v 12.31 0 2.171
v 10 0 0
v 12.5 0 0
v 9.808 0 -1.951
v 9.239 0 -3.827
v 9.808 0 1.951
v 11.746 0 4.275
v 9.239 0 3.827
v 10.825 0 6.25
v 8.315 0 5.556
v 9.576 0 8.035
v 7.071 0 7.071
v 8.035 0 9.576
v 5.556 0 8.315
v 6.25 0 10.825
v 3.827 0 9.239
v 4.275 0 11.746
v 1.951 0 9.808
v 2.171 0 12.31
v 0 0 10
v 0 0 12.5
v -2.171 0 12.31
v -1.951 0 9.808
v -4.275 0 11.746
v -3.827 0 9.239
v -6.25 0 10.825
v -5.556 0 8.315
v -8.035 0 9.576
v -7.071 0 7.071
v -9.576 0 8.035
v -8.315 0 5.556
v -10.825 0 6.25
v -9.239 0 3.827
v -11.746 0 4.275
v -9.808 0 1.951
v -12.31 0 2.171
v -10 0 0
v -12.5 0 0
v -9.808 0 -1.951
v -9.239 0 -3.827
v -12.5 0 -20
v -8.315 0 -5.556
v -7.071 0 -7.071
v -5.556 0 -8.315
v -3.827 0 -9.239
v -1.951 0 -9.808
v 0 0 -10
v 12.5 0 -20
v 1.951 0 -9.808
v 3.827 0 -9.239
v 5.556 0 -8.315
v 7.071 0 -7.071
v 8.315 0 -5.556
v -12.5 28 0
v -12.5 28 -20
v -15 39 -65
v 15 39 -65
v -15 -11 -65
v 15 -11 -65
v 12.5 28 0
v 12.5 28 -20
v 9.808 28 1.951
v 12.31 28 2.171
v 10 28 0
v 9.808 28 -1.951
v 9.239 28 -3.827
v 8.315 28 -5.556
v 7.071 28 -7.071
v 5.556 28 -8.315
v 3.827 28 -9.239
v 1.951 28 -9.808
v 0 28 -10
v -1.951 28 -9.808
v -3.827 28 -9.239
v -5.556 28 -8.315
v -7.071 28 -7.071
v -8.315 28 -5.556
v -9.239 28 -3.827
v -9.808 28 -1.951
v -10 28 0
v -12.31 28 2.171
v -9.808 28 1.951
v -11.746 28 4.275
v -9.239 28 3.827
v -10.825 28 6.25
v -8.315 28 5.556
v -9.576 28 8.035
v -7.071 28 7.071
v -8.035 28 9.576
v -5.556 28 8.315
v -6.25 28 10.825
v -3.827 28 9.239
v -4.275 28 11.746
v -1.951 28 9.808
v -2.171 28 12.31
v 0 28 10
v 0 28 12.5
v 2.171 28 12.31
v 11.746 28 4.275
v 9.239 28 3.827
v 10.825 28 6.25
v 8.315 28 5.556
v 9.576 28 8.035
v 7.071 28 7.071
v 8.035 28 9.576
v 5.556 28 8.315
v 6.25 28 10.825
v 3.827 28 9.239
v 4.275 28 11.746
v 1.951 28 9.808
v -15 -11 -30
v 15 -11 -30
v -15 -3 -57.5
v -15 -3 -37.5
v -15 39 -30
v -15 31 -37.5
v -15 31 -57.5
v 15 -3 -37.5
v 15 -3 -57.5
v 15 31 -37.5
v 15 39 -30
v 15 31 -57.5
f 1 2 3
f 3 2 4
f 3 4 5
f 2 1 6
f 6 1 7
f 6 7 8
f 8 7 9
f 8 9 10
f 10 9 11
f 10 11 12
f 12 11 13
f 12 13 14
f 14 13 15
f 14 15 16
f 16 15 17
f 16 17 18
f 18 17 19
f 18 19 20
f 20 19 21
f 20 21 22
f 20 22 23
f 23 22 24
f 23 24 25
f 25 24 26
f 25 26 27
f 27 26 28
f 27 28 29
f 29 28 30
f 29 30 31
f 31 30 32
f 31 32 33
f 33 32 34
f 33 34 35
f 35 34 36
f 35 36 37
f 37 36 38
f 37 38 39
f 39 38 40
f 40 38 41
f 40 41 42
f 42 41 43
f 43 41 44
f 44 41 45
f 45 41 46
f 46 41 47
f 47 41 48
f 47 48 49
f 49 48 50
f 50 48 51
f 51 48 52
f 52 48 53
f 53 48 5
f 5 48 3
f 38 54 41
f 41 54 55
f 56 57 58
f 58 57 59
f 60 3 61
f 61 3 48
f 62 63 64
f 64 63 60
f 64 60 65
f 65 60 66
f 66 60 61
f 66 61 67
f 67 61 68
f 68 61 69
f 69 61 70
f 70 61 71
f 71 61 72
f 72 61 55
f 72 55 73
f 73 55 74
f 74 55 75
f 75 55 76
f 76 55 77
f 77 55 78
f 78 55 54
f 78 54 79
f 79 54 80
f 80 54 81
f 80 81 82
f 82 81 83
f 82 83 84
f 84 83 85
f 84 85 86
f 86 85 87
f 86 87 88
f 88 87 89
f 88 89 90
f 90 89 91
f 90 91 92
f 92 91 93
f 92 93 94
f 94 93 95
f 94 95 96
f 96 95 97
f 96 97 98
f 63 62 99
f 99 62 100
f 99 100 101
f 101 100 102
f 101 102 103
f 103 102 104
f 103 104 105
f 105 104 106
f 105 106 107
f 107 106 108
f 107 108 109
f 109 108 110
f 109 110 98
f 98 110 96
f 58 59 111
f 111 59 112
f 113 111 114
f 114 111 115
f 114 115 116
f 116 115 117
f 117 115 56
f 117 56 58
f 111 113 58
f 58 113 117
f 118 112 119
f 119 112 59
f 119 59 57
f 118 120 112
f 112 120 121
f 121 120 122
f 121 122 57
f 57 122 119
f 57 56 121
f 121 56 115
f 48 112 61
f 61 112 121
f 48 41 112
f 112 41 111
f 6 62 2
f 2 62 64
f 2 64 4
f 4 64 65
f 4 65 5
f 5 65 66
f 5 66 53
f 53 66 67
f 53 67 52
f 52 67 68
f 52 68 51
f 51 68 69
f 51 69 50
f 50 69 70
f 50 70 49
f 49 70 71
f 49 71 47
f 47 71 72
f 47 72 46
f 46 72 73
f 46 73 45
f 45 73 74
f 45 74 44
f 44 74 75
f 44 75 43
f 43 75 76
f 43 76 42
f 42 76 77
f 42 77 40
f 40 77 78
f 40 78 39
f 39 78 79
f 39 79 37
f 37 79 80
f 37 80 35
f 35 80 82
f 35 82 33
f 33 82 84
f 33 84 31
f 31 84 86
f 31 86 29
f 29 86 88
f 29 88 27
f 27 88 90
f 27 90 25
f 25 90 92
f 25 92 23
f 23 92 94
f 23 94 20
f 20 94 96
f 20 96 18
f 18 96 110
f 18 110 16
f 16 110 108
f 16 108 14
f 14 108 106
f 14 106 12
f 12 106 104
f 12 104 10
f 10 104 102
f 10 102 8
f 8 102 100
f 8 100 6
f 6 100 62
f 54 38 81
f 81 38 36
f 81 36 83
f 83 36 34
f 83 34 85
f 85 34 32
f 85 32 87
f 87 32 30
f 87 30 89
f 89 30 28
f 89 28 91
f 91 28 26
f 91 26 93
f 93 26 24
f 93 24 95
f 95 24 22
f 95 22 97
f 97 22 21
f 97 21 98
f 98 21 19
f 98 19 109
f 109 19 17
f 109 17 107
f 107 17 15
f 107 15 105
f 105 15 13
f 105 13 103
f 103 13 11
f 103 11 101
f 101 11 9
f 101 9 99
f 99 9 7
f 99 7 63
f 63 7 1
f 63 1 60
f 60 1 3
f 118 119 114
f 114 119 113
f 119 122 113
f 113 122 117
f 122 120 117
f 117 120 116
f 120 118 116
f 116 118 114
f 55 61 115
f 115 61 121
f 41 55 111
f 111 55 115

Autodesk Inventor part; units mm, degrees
ref_plane "YZ Plane" through (0, 0, 0) normal (1, 0, 0) x (0, 1, 0)
ref_plane "XZ Plane" through (0, 0, 0) normal (0, 1, 0) x (-1, 0, 0)
sketch "Sketch1" plane through (0, 0, 0) normal (0, 1, 0) x (-1, 0, 0)
  circle A0 centre (0, 0) radius 10
  circle A1 centre (0, 0) radius 12.5
  dimension "d0" = 20
  dimension "d1" = 25
extrude "Extrusion1" add sketch "Sketch1" along normal blind 28
sketch "Sketch2" plane through (0, 0, 0) normal (0, 0, 1) x (1, 0, 0)
  line L0 (12.5, 0) -> (-12.5, 0) projected
  line L1 (12.5, 28) -> (-12.5, 28) projected
  line L2 (-12.5, 0) -> (12.5, 0)
  line L3 (12.5, 0) -> (12.5, 28)
  line L4 (12.5, 28) -> (-12.5, 28)
  line L5 (-12.5, 28) -> (-12.5, 0)
  point P0 (0, 0)
extrude "Extrusion2" add sketch "Sketch2" against normal blind 20
sketch "Sketch3" plane through (0, 28, 0) normal (0, 1, 0) x (1, 0, 0)
  circle A0 centre (0, 0) radius 10
extrude "Extrusion3" cut sketch "Sketch3" against normal blind 50
ref_plane "Work Plane1" through (0, 0, -30) normal (0, 0, -1) x (-1, 0, 0)
sketch "Sketch4" plane through (0, 0, -30) normal (0, 0, -1) x (-1, 0, 0)
  line L0 (0, 0) -> (0, 28)
  line L1 (12.5, 28) -> (-12.5, 28) projected
  line L2 (-15, 30) -> (15, 30)
  line L3 (15, 30) -> (15, -2)
  line L4 (15, -2) -> (-15, -2)
  line L5 (-15, -2) -> (-15, 30)
  line L6 (-15, 30) -> (15, -2) construction
  line L7 (15, 30) -> (-15, -2) construction
  point P0 (0, 14)
  dimension "d9" = 30
  dimension "d10" = 32
extrude "Extrusion4" add sketch "Sketch4" along normal blind 15
sketch "Sketch5" plane through (0, 0, -45) normal (0, 0, -1) x (-1, 0, 0)
  line L0 (15, 30) -> (-15, 30) projected
  line L1 (0, 30) -> (0, -2)
  line L2 (-15, -2) -> (15, -2) projected
  line L3 (-15, 39) -> (15, 39)
  line L4 (15, 39) -> (15, -11)
  line L5 (15, -11) -> (-15, -11)
  line L6 (-15, -11) -> (-15, 39)
  line L7 (-15, 39) -> (15, -11) construction
  line L8 (15, 39) -> (-15, -11) construction
  point P0 (0, 0)
  point P1 (0, 14)
  dimension "d17" = 30
  dimension "d18" = 50
extrude "Extrusion5" add sketch "Sketch5" along normal blind 20 and the other way blind 15
sketch "Sketch7" plane through (15, -11, -30) normal (1, 0, 0) x (0, 0, -1)
  line L0 (0, 0) -> (35, 0) projected
  line L1 (17.5, 0) -> (17.5, 50)
  line L2 (35, 50) -> (0, 50) projected
  line L3 (35, 0) -> (35, 50) projected
  line L4 (35, 25) -> (0, 25)
  line L5 (0, 0) -> (0, 50) projected
  line L6 (7.5, 42) -> (27.5, 42)
  line L7 (27.5, 42) -> (27.5, 8)
  line L8 (27.5, 8) -> (7.5, 8)
  line L9 (7.5, 8) -> (7.5, 42)
  line L10 (7.5, 42) -> (27.5, 8) construction
  line L11 (27.5, 42) -> (7.5, 8) construction
  line L12 (27.5, 42) -> (7.5, 42)
  line L13 (7.5, 42) -> (7.5, 8)
  line L14 (7.5, 8) -> (27.5, 8)
  line L15 (27.5, 8) -> (27.5, 42)
  point P0 (-30, 11)
  point P1 (17.5, 25)
  dimension "d23" = 20
  dimension "d24" = 34
extrude "Extrusion6" cut sketch "Sketch7" against normal blind 30 contours L8 L9 L4 L1 | L1 L4 L7 L8 | L9 L6 L1 L4 | L1 L6 L7 L4
loft "Loft2" add section 1 edges at (0, 28, -20) (12.5, 14, -20) (0, 0, -20) (-12.5, 14, -20) section 2 edges at (15, 14, -30) (0, 39, -30) (-15, 14, -30) (0, -11, -30)
equation "\"BendRadius\" = Thickness"
equation "\"BendReliefWidth\" = Thickness"
equation "\"BendReliefDepth\" = 0.5 * Thickness"
equation "\"CornerReliefSize\" = 4 * Thickness"
equation "\"MinimumRemnant\" = 2 * Thickness"
equation "\"TransitionRadius\" = BendRadius"
equation "\"JacobiRadiusSize\" = BendRadius"
equation "\"GapSize\" = Thickness"
equation "\"Thickness\" = 0.5"
